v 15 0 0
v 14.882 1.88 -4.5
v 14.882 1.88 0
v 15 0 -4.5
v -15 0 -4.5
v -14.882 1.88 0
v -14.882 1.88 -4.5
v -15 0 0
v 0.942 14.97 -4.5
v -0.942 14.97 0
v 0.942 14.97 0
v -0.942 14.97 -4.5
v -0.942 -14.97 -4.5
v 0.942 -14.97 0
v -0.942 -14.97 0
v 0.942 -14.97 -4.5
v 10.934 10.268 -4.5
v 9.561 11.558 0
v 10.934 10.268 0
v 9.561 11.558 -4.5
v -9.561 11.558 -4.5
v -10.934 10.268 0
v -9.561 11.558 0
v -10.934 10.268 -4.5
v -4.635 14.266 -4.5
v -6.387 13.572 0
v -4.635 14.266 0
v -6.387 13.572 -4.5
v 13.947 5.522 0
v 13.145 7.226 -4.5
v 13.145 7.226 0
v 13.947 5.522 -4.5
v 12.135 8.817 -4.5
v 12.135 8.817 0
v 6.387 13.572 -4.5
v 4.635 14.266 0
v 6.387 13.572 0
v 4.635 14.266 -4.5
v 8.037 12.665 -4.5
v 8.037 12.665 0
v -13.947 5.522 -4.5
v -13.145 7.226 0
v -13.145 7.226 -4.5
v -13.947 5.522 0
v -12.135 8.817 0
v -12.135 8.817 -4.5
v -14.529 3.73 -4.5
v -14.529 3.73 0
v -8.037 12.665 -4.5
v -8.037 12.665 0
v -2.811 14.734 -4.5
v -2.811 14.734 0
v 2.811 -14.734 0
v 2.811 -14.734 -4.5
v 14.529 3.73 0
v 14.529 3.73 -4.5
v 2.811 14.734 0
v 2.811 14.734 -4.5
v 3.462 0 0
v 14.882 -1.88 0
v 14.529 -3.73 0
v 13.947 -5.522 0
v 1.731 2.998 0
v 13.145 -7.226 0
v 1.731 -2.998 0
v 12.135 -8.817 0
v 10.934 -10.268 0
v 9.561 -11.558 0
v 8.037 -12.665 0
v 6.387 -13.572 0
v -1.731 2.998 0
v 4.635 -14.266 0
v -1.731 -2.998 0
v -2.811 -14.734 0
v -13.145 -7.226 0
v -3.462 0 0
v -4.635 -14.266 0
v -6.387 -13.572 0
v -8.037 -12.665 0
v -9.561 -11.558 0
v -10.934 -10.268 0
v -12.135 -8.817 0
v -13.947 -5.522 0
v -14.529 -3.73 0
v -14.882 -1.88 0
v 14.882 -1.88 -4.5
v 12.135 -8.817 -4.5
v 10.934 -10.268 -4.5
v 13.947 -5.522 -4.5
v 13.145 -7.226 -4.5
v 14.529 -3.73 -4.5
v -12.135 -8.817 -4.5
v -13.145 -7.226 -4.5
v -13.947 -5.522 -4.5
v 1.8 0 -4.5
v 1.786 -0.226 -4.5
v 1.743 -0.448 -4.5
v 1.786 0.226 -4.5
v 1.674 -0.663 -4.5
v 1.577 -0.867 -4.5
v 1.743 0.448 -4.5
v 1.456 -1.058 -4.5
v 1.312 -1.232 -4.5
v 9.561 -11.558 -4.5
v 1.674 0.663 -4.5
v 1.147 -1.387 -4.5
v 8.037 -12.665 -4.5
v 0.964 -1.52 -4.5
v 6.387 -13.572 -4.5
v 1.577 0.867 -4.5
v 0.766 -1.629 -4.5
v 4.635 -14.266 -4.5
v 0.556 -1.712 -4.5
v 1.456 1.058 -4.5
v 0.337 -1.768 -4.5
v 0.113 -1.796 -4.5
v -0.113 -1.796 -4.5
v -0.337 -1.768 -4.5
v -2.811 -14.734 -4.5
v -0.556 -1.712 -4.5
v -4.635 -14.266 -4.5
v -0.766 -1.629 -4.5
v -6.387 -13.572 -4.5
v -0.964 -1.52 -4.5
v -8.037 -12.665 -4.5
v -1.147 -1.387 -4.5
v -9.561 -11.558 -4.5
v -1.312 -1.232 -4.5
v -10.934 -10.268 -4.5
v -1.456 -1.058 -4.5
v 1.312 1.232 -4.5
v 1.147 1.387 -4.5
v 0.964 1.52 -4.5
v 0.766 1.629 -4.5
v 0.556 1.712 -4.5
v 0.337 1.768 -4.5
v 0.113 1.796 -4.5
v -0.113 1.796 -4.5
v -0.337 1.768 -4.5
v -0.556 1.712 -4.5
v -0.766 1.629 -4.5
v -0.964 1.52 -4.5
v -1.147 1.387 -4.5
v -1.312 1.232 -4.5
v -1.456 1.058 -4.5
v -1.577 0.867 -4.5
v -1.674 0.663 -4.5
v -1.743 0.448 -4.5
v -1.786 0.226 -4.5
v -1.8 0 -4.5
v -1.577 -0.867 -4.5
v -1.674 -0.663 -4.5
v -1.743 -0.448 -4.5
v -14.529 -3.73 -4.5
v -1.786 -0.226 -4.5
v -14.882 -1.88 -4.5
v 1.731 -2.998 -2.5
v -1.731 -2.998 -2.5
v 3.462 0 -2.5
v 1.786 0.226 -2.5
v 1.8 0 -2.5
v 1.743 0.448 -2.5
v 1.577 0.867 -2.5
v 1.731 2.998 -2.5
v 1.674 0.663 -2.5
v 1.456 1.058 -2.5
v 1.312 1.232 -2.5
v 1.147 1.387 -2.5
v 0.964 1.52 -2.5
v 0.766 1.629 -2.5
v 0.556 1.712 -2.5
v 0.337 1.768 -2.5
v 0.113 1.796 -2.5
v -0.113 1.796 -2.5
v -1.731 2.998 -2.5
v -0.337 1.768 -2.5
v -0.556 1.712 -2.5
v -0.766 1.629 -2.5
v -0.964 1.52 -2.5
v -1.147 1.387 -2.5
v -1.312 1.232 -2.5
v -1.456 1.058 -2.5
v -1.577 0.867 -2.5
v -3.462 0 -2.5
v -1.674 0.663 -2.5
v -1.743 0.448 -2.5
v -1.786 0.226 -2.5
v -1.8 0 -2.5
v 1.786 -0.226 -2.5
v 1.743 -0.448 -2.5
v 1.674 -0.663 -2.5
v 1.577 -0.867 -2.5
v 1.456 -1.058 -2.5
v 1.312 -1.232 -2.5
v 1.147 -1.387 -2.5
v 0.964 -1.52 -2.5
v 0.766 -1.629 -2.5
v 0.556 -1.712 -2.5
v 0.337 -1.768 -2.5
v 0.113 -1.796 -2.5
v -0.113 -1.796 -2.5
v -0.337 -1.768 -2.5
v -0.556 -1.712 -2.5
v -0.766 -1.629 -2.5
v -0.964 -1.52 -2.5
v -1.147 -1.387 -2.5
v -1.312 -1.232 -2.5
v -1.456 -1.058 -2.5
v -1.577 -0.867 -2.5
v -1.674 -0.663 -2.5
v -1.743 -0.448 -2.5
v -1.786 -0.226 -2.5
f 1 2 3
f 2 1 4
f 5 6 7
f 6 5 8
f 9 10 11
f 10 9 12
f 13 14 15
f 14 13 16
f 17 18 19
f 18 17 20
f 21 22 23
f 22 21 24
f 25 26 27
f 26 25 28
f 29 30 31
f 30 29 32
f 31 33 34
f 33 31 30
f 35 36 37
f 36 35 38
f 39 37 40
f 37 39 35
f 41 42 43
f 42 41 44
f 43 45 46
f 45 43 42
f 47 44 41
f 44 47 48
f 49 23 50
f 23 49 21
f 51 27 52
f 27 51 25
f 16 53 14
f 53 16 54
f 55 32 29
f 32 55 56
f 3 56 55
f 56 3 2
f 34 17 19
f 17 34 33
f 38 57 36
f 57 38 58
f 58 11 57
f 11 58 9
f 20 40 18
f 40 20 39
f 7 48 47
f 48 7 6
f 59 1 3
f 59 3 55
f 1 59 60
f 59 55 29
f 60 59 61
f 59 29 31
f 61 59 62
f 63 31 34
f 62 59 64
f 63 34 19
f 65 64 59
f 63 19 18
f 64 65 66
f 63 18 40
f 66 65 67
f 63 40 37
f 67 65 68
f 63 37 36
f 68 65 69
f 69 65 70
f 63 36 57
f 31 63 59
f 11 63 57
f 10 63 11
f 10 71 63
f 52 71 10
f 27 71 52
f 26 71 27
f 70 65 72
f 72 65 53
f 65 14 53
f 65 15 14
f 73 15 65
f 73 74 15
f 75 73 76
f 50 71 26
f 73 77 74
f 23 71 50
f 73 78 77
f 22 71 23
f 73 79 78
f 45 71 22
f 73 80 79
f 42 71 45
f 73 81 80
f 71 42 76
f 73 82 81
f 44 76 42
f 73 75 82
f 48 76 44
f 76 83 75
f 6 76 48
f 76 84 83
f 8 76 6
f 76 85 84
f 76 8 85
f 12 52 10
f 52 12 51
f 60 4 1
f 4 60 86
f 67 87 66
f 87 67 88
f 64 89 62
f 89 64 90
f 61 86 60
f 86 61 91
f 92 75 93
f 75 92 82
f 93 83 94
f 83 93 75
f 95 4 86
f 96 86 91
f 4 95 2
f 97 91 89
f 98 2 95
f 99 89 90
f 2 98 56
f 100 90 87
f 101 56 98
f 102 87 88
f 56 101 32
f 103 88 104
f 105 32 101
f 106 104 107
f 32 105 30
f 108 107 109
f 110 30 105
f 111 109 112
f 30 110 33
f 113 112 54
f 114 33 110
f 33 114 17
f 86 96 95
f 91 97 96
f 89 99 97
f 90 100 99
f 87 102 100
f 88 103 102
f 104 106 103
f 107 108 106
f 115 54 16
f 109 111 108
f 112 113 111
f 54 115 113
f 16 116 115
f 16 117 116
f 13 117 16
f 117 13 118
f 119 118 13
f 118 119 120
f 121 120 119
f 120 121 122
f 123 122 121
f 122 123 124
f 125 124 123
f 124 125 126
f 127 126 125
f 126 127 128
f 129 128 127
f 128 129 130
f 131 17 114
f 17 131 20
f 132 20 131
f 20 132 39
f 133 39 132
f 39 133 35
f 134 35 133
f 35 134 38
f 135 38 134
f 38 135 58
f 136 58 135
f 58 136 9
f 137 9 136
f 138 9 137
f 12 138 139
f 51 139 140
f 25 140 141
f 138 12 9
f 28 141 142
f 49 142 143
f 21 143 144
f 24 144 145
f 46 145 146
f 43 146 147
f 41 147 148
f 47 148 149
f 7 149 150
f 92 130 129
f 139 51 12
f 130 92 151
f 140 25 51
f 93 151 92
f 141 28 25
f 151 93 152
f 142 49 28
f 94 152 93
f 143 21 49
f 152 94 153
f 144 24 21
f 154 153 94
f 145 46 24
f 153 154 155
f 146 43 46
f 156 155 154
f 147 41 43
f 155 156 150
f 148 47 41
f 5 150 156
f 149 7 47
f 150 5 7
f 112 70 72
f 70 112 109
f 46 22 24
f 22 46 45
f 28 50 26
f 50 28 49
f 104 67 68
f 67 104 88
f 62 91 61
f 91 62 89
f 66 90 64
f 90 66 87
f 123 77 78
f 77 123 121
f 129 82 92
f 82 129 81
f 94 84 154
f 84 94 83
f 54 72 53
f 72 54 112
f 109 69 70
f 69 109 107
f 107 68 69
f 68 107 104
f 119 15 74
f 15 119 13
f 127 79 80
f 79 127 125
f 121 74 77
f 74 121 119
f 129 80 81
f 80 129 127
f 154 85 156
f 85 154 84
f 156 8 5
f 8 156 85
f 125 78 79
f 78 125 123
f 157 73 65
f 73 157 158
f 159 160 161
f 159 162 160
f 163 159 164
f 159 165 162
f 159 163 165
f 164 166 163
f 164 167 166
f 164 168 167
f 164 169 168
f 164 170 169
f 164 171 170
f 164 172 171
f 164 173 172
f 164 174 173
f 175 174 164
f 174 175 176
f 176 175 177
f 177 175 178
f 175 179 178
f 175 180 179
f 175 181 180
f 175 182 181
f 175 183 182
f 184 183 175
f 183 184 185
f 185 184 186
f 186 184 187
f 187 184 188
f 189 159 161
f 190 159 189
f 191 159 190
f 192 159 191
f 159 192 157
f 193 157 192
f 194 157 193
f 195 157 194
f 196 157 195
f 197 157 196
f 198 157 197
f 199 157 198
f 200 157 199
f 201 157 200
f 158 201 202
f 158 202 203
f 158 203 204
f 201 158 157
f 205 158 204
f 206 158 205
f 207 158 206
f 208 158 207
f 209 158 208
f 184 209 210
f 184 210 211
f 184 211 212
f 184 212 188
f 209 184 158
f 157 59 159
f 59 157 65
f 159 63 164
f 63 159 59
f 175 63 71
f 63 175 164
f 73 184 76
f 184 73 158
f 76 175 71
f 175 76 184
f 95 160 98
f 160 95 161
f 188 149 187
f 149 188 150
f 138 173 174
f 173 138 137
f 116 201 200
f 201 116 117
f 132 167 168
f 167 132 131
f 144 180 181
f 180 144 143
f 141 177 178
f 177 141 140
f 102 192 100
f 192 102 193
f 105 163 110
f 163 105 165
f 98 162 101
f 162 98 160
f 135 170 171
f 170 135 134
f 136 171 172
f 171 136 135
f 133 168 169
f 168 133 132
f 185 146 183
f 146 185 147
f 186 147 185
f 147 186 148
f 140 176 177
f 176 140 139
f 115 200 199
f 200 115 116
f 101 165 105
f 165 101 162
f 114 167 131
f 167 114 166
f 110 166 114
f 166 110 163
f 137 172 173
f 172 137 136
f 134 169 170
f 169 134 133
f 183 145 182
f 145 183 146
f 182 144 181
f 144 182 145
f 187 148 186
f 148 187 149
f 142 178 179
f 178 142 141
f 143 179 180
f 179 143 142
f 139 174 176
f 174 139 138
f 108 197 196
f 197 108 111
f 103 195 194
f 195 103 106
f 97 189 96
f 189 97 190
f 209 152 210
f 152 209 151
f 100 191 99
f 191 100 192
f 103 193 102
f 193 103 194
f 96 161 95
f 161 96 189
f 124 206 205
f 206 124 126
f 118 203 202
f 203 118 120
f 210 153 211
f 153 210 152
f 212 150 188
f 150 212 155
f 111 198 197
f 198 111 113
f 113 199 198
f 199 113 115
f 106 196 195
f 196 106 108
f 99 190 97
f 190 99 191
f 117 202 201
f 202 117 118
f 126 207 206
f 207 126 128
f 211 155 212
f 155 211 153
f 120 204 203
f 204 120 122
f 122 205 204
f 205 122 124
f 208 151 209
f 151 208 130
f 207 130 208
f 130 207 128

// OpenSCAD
$fn = 50;


difference() {
	union() {
		translate(v = [0, 0, -4.5000000000]) {
			cylinder(h = 4.5000000000, r = 15.0000000000);
		}
		translate(v = [0, 0, -3.0000000000]) {
			cylinder(h = 3, r = 2.8750000000);
		}
	}
	union() {
		translate(v = [0, 0, 0]) {
			rotate(a = [0, 0, 0]) {
				difference() {
					union() {
						translate(v = [0, 0, -2.5000000000]) {
							linear_extrude(height = 2.5000000000) {
								polygon(points = [[3.4620000000, 0.0000000000], [1.7310000000, 2.9981799479], [-1.7310000000, 2.9981799479], [-3.4620000000, 0.0000000000], [-1.7310000000, -2.9981799479], [1.7310000000, -2.9981799479]]);
							}
						}
					}
					union();
				}
			}
		}
		#translate(v = [0, 0, -100.0000000000]) {
			cylinder(h = 200, r = 1.8000000000);
		}
	}
}
